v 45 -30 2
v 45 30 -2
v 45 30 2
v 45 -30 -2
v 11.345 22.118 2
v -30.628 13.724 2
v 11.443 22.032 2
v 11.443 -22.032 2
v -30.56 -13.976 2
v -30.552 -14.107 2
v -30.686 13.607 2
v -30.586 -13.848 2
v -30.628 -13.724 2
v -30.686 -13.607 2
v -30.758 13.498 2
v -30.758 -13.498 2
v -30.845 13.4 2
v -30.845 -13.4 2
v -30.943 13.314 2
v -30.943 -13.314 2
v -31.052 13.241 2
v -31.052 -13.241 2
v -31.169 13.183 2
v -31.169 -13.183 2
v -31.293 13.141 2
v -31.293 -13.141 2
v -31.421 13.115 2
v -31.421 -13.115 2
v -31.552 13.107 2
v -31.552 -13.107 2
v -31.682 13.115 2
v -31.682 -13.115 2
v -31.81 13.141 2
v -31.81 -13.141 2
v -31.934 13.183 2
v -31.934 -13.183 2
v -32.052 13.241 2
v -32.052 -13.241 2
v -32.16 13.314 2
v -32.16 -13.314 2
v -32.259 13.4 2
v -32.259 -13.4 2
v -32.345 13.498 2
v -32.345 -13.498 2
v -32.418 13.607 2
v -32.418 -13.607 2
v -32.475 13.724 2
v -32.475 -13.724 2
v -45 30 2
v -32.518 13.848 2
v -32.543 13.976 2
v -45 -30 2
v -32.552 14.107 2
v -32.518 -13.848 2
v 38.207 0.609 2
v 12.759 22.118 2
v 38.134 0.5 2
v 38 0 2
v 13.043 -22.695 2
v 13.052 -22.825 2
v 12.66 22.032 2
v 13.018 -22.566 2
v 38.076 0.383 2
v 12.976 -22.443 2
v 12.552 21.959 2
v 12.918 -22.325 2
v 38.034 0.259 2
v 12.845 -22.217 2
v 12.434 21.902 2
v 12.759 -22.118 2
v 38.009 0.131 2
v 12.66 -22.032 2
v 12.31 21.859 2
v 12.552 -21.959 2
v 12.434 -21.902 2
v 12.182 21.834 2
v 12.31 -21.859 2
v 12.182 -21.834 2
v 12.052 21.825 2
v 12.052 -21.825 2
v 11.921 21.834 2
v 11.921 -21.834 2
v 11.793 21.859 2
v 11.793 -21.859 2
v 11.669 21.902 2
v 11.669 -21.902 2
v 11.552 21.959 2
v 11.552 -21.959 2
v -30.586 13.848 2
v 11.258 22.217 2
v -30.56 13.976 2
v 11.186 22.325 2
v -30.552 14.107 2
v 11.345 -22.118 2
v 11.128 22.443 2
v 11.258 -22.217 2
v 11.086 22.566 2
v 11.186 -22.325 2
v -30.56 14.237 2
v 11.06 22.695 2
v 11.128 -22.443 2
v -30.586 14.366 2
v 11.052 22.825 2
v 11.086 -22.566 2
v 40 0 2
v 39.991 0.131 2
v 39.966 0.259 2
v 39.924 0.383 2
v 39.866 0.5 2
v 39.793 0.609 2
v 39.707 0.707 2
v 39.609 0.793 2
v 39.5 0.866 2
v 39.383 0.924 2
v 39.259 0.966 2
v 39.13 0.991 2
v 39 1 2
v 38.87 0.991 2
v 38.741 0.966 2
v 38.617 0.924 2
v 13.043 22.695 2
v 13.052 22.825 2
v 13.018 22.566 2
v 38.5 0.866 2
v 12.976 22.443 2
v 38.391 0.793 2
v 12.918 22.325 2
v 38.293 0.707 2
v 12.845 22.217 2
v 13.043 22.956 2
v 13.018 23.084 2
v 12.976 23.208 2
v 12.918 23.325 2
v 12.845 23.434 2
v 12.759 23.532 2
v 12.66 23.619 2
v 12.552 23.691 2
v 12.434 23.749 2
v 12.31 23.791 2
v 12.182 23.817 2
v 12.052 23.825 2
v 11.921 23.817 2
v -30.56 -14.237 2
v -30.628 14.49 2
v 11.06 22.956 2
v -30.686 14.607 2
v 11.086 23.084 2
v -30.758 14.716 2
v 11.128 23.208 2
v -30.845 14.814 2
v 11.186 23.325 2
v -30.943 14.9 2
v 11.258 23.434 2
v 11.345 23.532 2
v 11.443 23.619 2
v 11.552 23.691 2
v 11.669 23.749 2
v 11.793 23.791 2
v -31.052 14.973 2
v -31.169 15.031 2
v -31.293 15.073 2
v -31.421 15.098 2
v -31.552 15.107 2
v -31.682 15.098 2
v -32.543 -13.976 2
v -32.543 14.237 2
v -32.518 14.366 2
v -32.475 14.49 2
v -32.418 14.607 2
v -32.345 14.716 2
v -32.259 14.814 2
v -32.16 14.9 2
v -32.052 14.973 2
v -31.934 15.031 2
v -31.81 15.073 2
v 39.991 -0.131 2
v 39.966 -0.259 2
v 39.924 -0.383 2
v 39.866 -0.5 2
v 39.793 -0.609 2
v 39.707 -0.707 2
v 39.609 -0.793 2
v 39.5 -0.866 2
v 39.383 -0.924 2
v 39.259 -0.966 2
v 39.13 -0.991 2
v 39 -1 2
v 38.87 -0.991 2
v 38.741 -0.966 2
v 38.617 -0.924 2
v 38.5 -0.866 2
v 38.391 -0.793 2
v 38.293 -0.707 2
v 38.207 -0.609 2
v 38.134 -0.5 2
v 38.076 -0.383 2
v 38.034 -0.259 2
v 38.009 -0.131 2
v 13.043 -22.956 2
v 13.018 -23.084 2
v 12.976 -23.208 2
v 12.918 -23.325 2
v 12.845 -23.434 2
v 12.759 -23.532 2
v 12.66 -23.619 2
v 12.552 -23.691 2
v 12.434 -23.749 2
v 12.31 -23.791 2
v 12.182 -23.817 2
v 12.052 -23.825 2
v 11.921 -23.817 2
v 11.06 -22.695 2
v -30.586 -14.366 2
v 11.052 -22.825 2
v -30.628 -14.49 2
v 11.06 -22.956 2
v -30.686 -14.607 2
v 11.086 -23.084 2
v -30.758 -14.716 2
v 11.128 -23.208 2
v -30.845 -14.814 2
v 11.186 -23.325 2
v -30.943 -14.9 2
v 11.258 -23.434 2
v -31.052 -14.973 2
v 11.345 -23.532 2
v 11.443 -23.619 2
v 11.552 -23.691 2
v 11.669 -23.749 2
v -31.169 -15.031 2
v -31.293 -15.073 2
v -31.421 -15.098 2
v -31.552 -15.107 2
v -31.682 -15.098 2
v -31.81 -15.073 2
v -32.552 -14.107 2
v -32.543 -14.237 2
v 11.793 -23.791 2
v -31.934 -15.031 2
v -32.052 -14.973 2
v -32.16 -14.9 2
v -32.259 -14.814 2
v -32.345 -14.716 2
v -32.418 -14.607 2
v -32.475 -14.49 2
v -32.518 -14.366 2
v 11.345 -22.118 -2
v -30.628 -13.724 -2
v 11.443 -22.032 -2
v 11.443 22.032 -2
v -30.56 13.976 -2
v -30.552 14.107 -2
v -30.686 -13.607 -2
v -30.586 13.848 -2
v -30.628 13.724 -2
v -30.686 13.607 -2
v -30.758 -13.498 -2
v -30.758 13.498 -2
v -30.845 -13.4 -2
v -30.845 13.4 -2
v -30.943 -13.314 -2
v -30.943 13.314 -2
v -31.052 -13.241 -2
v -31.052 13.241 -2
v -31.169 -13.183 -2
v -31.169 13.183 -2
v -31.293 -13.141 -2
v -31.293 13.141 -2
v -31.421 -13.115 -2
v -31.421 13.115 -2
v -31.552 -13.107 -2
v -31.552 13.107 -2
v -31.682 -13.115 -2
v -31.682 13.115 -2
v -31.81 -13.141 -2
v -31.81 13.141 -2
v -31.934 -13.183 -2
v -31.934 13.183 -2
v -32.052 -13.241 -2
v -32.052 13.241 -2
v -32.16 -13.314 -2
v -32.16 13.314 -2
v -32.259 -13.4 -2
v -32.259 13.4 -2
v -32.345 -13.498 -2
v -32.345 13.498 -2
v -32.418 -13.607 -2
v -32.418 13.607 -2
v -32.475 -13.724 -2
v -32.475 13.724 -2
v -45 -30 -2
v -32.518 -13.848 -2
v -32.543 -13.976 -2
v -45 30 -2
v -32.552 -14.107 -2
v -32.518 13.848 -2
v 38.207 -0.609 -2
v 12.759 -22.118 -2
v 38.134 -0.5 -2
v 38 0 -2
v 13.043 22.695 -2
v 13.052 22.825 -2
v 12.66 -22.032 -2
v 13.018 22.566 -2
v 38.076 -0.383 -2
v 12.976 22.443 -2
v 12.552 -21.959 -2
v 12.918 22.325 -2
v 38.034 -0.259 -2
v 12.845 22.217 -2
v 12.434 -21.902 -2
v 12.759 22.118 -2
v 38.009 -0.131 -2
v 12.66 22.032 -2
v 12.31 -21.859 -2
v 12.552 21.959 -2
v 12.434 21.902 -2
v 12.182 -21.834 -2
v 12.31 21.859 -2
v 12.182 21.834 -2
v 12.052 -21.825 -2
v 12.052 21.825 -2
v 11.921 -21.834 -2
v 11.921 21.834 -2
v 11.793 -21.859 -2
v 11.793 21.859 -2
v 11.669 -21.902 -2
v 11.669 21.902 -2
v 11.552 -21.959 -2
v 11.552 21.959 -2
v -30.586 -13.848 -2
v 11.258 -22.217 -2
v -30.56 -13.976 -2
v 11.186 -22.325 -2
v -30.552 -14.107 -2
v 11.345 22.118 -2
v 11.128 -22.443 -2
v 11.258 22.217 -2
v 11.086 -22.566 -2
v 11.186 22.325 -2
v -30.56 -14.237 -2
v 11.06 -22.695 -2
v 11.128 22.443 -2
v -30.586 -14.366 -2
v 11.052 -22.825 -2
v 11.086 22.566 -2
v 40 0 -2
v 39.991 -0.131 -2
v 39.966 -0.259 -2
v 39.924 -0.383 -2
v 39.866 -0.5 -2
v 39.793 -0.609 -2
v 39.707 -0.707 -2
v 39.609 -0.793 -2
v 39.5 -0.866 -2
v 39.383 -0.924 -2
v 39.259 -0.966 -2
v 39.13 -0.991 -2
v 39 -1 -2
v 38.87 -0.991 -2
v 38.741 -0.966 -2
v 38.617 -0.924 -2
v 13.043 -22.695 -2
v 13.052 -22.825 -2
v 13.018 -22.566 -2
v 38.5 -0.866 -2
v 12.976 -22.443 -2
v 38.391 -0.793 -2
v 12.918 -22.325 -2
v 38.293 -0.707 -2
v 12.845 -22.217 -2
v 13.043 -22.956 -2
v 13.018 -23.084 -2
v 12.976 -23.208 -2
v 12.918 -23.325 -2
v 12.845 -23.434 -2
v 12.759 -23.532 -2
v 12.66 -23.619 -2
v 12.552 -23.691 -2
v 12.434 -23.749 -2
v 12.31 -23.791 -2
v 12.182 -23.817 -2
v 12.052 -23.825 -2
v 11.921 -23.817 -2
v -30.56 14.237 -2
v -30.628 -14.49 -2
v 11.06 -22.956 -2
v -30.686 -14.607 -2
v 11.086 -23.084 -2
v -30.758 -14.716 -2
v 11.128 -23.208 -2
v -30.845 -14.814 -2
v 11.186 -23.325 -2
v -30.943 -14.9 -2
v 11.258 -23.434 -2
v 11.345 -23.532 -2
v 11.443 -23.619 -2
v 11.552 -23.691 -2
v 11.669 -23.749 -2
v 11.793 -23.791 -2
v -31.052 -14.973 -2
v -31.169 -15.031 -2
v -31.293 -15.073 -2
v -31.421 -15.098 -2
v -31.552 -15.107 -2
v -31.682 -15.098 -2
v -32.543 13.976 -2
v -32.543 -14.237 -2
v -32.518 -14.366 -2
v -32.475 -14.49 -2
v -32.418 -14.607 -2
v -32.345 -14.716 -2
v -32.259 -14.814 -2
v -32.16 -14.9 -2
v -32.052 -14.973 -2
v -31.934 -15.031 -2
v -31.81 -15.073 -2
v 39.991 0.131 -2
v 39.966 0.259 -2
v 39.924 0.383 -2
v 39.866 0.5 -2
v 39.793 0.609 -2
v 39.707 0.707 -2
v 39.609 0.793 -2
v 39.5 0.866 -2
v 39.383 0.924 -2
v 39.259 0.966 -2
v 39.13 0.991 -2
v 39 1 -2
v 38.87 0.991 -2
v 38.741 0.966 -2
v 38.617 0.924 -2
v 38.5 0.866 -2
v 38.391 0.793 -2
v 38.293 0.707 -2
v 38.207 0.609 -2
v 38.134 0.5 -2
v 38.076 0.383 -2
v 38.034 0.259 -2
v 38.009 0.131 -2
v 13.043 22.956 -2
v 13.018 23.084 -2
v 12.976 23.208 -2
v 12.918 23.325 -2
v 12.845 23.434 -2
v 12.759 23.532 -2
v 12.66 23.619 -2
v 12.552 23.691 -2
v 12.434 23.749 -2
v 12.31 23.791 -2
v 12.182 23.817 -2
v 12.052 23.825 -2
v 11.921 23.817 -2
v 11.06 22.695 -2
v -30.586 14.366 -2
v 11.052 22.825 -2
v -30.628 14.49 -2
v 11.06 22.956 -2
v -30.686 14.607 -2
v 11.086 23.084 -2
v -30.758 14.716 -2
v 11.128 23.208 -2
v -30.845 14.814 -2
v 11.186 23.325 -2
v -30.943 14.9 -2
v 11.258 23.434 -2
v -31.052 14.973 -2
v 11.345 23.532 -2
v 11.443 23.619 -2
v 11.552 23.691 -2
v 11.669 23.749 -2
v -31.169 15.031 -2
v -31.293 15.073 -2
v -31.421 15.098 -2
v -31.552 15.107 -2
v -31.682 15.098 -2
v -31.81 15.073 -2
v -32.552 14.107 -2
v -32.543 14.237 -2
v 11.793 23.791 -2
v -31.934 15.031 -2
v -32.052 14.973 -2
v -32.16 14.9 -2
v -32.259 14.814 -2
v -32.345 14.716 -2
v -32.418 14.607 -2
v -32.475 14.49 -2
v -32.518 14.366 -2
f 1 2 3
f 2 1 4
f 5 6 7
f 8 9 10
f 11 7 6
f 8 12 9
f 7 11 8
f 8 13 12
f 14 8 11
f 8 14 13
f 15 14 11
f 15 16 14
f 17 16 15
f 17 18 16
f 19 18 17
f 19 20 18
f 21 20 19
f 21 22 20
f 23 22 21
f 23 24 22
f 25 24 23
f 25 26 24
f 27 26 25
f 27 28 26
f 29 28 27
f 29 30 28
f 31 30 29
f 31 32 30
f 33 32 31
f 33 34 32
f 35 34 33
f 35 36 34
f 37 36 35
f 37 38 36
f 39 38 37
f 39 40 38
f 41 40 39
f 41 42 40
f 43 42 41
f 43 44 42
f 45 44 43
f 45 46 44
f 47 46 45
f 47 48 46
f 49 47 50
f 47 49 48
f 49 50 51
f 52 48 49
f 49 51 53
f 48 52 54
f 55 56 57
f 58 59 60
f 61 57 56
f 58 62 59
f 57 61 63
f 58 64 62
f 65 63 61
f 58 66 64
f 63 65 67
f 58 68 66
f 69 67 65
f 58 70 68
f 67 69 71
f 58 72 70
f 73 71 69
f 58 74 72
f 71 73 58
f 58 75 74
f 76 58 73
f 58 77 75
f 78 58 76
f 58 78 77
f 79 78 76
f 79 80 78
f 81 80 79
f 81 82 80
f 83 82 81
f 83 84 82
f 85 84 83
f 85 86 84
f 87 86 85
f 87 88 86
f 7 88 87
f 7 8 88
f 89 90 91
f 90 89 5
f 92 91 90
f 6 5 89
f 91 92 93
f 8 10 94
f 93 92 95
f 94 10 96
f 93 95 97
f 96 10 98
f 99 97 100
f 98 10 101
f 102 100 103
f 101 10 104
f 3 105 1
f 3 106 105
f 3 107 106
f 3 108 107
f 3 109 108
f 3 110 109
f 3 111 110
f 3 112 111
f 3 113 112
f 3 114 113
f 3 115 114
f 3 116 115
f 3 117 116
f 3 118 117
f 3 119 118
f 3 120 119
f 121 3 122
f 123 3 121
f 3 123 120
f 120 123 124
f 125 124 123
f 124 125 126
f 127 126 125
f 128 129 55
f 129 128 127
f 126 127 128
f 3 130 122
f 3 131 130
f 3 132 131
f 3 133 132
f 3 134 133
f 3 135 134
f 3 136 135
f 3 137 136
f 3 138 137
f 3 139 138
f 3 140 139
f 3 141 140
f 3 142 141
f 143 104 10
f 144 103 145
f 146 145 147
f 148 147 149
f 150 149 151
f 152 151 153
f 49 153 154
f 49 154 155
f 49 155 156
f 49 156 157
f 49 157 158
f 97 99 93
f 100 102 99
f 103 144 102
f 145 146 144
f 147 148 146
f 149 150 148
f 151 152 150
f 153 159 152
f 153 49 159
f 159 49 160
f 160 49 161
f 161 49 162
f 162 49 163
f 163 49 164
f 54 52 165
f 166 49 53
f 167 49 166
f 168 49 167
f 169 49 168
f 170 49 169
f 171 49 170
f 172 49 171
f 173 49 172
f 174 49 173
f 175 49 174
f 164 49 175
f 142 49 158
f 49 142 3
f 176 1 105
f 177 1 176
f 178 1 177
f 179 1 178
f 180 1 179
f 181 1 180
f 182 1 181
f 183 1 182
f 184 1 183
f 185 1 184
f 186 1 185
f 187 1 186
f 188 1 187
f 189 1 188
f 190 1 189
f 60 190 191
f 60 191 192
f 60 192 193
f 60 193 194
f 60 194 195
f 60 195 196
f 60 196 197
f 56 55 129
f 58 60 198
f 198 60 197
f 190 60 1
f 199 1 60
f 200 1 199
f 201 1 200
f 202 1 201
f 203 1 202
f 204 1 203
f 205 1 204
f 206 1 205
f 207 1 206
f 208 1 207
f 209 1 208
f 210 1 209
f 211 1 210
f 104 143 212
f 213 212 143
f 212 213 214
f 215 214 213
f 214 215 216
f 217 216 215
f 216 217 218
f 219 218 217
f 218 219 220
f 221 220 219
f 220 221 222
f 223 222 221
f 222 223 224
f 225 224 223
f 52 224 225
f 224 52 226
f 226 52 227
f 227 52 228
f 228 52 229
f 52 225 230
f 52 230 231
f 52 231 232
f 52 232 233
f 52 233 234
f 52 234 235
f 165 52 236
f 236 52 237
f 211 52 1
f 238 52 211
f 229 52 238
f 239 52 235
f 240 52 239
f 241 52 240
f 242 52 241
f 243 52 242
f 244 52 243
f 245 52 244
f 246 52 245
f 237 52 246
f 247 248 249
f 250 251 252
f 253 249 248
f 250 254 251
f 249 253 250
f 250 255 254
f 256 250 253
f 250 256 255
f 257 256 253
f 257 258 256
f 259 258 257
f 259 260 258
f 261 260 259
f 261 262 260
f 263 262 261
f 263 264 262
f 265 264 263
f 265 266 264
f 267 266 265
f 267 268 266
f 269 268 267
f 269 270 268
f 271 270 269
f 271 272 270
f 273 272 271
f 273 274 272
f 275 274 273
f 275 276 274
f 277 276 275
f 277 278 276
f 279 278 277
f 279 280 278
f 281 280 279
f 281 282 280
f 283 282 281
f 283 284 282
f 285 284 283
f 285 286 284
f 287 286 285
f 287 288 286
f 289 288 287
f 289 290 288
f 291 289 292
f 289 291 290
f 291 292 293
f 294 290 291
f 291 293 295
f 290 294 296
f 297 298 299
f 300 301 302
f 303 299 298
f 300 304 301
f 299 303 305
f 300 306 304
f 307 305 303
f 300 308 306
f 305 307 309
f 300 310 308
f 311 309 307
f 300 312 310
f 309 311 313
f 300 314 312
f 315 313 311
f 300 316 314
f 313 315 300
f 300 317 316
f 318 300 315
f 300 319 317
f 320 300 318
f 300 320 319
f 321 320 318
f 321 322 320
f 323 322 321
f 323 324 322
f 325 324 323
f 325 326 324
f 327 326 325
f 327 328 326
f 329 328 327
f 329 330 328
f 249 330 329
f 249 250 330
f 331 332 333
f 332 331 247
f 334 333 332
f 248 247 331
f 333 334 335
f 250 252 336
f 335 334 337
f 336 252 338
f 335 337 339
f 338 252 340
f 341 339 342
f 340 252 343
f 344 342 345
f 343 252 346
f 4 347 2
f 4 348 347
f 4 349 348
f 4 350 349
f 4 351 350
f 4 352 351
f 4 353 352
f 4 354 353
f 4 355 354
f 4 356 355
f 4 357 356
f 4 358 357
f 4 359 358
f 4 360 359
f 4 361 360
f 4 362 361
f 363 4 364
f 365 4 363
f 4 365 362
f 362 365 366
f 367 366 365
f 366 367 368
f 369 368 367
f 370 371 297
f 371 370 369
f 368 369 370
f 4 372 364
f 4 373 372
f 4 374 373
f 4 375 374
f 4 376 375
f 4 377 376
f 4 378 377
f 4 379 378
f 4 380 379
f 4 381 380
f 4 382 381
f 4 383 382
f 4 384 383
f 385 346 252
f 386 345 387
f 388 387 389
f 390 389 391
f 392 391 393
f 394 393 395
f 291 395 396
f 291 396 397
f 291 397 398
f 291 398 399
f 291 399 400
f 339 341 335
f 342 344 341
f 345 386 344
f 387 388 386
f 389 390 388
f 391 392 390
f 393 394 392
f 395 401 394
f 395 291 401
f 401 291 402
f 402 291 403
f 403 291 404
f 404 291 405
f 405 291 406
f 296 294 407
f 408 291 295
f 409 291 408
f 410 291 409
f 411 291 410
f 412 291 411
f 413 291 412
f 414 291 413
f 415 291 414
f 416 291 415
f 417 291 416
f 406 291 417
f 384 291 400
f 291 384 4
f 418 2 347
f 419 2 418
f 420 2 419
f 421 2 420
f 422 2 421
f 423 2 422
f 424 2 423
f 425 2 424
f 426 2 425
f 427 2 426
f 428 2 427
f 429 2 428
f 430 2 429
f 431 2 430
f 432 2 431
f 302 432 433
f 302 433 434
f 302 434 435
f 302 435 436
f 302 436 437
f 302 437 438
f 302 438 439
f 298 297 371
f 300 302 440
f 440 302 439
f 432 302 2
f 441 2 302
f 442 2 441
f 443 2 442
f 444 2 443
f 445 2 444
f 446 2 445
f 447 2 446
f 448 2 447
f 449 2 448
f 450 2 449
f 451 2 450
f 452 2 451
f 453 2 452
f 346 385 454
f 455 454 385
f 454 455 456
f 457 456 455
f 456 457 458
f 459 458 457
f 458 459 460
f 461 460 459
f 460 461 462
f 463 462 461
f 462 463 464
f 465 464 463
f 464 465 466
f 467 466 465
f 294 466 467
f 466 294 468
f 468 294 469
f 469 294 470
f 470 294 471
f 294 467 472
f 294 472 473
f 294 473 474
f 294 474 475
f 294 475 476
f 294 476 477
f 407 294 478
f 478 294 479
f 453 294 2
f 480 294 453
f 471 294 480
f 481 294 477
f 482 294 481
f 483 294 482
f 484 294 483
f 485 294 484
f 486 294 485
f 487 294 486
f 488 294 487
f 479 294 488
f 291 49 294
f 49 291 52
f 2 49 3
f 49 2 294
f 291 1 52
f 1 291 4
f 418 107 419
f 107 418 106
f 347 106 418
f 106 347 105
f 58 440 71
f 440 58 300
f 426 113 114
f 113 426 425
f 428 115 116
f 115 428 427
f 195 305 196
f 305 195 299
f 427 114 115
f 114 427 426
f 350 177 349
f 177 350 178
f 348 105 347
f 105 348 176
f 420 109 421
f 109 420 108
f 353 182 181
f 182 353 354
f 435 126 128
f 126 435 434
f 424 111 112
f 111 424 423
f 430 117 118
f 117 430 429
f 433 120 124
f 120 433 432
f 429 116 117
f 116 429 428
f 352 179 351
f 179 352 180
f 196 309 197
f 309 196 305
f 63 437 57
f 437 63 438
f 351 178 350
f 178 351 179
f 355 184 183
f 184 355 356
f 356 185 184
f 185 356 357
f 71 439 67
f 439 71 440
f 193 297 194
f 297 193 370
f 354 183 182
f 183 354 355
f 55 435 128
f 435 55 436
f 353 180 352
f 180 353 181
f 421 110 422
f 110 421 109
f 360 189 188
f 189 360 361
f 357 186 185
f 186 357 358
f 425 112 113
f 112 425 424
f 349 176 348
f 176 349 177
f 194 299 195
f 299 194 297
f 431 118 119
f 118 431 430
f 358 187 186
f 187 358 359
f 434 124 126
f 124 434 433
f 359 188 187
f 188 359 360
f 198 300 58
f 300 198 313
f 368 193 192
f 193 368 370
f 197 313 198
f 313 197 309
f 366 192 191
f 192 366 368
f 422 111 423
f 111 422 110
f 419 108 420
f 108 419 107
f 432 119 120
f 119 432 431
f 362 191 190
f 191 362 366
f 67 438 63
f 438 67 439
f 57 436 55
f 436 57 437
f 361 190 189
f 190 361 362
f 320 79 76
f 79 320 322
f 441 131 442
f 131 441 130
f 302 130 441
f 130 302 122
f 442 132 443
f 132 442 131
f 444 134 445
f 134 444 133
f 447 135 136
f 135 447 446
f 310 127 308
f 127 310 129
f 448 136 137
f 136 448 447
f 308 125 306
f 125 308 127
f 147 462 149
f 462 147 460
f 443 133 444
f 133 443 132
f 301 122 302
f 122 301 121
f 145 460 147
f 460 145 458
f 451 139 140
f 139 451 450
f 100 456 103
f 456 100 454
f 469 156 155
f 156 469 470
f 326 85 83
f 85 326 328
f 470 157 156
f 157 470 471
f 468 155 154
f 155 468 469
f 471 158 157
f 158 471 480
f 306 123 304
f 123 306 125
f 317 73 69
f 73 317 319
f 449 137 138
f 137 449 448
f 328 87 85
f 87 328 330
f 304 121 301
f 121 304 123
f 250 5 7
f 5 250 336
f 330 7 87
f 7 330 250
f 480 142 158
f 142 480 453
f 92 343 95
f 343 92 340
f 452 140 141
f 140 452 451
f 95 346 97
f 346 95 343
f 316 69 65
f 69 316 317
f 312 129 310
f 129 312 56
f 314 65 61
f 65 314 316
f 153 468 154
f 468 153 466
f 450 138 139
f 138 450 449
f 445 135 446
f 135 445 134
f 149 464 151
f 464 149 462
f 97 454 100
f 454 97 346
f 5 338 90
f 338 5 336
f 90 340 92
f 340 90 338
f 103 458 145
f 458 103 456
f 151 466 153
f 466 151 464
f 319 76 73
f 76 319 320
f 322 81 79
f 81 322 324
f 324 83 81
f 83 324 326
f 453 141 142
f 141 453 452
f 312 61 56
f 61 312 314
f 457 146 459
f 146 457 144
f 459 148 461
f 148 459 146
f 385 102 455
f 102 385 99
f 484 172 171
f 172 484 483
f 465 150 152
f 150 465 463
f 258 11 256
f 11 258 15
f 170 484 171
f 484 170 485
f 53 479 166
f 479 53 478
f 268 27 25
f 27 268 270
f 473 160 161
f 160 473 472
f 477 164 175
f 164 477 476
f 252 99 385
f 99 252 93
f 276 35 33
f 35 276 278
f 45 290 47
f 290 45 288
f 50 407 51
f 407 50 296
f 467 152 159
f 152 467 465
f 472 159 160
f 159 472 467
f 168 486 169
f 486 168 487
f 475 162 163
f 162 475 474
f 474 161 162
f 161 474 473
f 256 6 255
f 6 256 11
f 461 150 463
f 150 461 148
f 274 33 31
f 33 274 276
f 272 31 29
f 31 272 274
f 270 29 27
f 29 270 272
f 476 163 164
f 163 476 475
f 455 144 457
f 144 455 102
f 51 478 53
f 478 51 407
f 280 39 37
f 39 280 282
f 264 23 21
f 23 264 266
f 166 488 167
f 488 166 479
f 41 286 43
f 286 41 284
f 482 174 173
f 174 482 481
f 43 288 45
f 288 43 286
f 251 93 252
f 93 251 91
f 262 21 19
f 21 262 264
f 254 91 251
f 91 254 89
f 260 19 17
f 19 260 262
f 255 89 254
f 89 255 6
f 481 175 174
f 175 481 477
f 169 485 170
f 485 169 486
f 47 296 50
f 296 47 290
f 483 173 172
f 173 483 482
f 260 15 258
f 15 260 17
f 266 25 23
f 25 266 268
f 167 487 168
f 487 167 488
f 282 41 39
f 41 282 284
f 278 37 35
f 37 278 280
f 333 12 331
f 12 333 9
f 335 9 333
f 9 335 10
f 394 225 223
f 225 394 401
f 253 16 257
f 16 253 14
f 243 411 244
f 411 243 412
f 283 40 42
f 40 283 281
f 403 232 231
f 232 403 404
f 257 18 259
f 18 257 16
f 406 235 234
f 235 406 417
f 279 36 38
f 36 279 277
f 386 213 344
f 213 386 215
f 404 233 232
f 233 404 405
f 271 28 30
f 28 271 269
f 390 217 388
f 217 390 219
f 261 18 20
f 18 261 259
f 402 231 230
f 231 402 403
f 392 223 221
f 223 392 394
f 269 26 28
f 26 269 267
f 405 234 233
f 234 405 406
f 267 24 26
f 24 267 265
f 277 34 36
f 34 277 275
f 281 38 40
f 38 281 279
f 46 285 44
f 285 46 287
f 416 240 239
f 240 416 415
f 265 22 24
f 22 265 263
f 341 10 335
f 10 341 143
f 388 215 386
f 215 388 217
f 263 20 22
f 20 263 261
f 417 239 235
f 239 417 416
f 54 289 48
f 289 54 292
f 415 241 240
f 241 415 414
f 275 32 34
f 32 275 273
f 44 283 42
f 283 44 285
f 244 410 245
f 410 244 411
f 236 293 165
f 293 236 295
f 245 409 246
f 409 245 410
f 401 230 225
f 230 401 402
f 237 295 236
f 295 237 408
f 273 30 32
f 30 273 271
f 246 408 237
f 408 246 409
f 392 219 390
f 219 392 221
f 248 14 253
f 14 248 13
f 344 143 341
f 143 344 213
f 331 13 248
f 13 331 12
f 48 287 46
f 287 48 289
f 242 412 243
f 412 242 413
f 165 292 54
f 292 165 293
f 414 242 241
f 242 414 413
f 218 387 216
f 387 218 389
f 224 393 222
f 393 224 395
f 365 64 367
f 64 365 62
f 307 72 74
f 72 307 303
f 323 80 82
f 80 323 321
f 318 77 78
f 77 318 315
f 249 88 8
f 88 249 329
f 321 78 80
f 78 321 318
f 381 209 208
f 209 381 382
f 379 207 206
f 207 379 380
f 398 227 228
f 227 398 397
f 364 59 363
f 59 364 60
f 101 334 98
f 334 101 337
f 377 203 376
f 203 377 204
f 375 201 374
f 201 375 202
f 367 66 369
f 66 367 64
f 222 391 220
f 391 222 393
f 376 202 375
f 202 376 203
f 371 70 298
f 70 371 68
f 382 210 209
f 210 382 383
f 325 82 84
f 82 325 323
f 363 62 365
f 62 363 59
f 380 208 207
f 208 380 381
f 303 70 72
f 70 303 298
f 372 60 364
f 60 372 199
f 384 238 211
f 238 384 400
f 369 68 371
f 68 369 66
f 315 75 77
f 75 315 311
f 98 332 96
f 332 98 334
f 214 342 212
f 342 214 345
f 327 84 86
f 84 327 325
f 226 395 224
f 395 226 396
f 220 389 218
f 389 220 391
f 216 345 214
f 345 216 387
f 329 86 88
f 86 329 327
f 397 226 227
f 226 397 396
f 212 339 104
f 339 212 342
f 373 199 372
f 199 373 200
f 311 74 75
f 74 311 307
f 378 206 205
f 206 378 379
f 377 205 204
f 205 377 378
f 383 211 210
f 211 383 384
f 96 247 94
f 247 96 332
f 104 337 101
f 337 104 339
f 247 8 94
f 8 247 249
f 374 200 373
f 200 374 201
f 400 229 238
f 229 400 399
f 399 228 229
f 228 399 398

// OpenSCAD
// ========================================
// a 9 x 6 x 0.4 cm plate with five 0.2 cm holes
// NeuroCAD canonical IR; dimensions are millimetres
// ========================================
$fn = 48;

difference() {
  cube(size=[90, 60, 4], center=true);
  translate([39, 0, 0]) {
    cylinder(r=1, h=6, center=true);
  }
  translate([12.051662780623, 22.8253563910837, 0]) {
    cylinder(r=1, h=6, center=true);
  }
  translate([-31.5516627806229, 14.1068460550194, 0]) {
    cylinder(r=1, h=6, center=true);
  }
  translate([-31.551662780623, -14.1068460550194, 0]) {
    cylinder(r=1, h=6, center=true);
  }
  translate([12.0516627806229, -22.8253563910837, 0]) {
    cylinder(r=1, h=6, center=true);
  }
}
